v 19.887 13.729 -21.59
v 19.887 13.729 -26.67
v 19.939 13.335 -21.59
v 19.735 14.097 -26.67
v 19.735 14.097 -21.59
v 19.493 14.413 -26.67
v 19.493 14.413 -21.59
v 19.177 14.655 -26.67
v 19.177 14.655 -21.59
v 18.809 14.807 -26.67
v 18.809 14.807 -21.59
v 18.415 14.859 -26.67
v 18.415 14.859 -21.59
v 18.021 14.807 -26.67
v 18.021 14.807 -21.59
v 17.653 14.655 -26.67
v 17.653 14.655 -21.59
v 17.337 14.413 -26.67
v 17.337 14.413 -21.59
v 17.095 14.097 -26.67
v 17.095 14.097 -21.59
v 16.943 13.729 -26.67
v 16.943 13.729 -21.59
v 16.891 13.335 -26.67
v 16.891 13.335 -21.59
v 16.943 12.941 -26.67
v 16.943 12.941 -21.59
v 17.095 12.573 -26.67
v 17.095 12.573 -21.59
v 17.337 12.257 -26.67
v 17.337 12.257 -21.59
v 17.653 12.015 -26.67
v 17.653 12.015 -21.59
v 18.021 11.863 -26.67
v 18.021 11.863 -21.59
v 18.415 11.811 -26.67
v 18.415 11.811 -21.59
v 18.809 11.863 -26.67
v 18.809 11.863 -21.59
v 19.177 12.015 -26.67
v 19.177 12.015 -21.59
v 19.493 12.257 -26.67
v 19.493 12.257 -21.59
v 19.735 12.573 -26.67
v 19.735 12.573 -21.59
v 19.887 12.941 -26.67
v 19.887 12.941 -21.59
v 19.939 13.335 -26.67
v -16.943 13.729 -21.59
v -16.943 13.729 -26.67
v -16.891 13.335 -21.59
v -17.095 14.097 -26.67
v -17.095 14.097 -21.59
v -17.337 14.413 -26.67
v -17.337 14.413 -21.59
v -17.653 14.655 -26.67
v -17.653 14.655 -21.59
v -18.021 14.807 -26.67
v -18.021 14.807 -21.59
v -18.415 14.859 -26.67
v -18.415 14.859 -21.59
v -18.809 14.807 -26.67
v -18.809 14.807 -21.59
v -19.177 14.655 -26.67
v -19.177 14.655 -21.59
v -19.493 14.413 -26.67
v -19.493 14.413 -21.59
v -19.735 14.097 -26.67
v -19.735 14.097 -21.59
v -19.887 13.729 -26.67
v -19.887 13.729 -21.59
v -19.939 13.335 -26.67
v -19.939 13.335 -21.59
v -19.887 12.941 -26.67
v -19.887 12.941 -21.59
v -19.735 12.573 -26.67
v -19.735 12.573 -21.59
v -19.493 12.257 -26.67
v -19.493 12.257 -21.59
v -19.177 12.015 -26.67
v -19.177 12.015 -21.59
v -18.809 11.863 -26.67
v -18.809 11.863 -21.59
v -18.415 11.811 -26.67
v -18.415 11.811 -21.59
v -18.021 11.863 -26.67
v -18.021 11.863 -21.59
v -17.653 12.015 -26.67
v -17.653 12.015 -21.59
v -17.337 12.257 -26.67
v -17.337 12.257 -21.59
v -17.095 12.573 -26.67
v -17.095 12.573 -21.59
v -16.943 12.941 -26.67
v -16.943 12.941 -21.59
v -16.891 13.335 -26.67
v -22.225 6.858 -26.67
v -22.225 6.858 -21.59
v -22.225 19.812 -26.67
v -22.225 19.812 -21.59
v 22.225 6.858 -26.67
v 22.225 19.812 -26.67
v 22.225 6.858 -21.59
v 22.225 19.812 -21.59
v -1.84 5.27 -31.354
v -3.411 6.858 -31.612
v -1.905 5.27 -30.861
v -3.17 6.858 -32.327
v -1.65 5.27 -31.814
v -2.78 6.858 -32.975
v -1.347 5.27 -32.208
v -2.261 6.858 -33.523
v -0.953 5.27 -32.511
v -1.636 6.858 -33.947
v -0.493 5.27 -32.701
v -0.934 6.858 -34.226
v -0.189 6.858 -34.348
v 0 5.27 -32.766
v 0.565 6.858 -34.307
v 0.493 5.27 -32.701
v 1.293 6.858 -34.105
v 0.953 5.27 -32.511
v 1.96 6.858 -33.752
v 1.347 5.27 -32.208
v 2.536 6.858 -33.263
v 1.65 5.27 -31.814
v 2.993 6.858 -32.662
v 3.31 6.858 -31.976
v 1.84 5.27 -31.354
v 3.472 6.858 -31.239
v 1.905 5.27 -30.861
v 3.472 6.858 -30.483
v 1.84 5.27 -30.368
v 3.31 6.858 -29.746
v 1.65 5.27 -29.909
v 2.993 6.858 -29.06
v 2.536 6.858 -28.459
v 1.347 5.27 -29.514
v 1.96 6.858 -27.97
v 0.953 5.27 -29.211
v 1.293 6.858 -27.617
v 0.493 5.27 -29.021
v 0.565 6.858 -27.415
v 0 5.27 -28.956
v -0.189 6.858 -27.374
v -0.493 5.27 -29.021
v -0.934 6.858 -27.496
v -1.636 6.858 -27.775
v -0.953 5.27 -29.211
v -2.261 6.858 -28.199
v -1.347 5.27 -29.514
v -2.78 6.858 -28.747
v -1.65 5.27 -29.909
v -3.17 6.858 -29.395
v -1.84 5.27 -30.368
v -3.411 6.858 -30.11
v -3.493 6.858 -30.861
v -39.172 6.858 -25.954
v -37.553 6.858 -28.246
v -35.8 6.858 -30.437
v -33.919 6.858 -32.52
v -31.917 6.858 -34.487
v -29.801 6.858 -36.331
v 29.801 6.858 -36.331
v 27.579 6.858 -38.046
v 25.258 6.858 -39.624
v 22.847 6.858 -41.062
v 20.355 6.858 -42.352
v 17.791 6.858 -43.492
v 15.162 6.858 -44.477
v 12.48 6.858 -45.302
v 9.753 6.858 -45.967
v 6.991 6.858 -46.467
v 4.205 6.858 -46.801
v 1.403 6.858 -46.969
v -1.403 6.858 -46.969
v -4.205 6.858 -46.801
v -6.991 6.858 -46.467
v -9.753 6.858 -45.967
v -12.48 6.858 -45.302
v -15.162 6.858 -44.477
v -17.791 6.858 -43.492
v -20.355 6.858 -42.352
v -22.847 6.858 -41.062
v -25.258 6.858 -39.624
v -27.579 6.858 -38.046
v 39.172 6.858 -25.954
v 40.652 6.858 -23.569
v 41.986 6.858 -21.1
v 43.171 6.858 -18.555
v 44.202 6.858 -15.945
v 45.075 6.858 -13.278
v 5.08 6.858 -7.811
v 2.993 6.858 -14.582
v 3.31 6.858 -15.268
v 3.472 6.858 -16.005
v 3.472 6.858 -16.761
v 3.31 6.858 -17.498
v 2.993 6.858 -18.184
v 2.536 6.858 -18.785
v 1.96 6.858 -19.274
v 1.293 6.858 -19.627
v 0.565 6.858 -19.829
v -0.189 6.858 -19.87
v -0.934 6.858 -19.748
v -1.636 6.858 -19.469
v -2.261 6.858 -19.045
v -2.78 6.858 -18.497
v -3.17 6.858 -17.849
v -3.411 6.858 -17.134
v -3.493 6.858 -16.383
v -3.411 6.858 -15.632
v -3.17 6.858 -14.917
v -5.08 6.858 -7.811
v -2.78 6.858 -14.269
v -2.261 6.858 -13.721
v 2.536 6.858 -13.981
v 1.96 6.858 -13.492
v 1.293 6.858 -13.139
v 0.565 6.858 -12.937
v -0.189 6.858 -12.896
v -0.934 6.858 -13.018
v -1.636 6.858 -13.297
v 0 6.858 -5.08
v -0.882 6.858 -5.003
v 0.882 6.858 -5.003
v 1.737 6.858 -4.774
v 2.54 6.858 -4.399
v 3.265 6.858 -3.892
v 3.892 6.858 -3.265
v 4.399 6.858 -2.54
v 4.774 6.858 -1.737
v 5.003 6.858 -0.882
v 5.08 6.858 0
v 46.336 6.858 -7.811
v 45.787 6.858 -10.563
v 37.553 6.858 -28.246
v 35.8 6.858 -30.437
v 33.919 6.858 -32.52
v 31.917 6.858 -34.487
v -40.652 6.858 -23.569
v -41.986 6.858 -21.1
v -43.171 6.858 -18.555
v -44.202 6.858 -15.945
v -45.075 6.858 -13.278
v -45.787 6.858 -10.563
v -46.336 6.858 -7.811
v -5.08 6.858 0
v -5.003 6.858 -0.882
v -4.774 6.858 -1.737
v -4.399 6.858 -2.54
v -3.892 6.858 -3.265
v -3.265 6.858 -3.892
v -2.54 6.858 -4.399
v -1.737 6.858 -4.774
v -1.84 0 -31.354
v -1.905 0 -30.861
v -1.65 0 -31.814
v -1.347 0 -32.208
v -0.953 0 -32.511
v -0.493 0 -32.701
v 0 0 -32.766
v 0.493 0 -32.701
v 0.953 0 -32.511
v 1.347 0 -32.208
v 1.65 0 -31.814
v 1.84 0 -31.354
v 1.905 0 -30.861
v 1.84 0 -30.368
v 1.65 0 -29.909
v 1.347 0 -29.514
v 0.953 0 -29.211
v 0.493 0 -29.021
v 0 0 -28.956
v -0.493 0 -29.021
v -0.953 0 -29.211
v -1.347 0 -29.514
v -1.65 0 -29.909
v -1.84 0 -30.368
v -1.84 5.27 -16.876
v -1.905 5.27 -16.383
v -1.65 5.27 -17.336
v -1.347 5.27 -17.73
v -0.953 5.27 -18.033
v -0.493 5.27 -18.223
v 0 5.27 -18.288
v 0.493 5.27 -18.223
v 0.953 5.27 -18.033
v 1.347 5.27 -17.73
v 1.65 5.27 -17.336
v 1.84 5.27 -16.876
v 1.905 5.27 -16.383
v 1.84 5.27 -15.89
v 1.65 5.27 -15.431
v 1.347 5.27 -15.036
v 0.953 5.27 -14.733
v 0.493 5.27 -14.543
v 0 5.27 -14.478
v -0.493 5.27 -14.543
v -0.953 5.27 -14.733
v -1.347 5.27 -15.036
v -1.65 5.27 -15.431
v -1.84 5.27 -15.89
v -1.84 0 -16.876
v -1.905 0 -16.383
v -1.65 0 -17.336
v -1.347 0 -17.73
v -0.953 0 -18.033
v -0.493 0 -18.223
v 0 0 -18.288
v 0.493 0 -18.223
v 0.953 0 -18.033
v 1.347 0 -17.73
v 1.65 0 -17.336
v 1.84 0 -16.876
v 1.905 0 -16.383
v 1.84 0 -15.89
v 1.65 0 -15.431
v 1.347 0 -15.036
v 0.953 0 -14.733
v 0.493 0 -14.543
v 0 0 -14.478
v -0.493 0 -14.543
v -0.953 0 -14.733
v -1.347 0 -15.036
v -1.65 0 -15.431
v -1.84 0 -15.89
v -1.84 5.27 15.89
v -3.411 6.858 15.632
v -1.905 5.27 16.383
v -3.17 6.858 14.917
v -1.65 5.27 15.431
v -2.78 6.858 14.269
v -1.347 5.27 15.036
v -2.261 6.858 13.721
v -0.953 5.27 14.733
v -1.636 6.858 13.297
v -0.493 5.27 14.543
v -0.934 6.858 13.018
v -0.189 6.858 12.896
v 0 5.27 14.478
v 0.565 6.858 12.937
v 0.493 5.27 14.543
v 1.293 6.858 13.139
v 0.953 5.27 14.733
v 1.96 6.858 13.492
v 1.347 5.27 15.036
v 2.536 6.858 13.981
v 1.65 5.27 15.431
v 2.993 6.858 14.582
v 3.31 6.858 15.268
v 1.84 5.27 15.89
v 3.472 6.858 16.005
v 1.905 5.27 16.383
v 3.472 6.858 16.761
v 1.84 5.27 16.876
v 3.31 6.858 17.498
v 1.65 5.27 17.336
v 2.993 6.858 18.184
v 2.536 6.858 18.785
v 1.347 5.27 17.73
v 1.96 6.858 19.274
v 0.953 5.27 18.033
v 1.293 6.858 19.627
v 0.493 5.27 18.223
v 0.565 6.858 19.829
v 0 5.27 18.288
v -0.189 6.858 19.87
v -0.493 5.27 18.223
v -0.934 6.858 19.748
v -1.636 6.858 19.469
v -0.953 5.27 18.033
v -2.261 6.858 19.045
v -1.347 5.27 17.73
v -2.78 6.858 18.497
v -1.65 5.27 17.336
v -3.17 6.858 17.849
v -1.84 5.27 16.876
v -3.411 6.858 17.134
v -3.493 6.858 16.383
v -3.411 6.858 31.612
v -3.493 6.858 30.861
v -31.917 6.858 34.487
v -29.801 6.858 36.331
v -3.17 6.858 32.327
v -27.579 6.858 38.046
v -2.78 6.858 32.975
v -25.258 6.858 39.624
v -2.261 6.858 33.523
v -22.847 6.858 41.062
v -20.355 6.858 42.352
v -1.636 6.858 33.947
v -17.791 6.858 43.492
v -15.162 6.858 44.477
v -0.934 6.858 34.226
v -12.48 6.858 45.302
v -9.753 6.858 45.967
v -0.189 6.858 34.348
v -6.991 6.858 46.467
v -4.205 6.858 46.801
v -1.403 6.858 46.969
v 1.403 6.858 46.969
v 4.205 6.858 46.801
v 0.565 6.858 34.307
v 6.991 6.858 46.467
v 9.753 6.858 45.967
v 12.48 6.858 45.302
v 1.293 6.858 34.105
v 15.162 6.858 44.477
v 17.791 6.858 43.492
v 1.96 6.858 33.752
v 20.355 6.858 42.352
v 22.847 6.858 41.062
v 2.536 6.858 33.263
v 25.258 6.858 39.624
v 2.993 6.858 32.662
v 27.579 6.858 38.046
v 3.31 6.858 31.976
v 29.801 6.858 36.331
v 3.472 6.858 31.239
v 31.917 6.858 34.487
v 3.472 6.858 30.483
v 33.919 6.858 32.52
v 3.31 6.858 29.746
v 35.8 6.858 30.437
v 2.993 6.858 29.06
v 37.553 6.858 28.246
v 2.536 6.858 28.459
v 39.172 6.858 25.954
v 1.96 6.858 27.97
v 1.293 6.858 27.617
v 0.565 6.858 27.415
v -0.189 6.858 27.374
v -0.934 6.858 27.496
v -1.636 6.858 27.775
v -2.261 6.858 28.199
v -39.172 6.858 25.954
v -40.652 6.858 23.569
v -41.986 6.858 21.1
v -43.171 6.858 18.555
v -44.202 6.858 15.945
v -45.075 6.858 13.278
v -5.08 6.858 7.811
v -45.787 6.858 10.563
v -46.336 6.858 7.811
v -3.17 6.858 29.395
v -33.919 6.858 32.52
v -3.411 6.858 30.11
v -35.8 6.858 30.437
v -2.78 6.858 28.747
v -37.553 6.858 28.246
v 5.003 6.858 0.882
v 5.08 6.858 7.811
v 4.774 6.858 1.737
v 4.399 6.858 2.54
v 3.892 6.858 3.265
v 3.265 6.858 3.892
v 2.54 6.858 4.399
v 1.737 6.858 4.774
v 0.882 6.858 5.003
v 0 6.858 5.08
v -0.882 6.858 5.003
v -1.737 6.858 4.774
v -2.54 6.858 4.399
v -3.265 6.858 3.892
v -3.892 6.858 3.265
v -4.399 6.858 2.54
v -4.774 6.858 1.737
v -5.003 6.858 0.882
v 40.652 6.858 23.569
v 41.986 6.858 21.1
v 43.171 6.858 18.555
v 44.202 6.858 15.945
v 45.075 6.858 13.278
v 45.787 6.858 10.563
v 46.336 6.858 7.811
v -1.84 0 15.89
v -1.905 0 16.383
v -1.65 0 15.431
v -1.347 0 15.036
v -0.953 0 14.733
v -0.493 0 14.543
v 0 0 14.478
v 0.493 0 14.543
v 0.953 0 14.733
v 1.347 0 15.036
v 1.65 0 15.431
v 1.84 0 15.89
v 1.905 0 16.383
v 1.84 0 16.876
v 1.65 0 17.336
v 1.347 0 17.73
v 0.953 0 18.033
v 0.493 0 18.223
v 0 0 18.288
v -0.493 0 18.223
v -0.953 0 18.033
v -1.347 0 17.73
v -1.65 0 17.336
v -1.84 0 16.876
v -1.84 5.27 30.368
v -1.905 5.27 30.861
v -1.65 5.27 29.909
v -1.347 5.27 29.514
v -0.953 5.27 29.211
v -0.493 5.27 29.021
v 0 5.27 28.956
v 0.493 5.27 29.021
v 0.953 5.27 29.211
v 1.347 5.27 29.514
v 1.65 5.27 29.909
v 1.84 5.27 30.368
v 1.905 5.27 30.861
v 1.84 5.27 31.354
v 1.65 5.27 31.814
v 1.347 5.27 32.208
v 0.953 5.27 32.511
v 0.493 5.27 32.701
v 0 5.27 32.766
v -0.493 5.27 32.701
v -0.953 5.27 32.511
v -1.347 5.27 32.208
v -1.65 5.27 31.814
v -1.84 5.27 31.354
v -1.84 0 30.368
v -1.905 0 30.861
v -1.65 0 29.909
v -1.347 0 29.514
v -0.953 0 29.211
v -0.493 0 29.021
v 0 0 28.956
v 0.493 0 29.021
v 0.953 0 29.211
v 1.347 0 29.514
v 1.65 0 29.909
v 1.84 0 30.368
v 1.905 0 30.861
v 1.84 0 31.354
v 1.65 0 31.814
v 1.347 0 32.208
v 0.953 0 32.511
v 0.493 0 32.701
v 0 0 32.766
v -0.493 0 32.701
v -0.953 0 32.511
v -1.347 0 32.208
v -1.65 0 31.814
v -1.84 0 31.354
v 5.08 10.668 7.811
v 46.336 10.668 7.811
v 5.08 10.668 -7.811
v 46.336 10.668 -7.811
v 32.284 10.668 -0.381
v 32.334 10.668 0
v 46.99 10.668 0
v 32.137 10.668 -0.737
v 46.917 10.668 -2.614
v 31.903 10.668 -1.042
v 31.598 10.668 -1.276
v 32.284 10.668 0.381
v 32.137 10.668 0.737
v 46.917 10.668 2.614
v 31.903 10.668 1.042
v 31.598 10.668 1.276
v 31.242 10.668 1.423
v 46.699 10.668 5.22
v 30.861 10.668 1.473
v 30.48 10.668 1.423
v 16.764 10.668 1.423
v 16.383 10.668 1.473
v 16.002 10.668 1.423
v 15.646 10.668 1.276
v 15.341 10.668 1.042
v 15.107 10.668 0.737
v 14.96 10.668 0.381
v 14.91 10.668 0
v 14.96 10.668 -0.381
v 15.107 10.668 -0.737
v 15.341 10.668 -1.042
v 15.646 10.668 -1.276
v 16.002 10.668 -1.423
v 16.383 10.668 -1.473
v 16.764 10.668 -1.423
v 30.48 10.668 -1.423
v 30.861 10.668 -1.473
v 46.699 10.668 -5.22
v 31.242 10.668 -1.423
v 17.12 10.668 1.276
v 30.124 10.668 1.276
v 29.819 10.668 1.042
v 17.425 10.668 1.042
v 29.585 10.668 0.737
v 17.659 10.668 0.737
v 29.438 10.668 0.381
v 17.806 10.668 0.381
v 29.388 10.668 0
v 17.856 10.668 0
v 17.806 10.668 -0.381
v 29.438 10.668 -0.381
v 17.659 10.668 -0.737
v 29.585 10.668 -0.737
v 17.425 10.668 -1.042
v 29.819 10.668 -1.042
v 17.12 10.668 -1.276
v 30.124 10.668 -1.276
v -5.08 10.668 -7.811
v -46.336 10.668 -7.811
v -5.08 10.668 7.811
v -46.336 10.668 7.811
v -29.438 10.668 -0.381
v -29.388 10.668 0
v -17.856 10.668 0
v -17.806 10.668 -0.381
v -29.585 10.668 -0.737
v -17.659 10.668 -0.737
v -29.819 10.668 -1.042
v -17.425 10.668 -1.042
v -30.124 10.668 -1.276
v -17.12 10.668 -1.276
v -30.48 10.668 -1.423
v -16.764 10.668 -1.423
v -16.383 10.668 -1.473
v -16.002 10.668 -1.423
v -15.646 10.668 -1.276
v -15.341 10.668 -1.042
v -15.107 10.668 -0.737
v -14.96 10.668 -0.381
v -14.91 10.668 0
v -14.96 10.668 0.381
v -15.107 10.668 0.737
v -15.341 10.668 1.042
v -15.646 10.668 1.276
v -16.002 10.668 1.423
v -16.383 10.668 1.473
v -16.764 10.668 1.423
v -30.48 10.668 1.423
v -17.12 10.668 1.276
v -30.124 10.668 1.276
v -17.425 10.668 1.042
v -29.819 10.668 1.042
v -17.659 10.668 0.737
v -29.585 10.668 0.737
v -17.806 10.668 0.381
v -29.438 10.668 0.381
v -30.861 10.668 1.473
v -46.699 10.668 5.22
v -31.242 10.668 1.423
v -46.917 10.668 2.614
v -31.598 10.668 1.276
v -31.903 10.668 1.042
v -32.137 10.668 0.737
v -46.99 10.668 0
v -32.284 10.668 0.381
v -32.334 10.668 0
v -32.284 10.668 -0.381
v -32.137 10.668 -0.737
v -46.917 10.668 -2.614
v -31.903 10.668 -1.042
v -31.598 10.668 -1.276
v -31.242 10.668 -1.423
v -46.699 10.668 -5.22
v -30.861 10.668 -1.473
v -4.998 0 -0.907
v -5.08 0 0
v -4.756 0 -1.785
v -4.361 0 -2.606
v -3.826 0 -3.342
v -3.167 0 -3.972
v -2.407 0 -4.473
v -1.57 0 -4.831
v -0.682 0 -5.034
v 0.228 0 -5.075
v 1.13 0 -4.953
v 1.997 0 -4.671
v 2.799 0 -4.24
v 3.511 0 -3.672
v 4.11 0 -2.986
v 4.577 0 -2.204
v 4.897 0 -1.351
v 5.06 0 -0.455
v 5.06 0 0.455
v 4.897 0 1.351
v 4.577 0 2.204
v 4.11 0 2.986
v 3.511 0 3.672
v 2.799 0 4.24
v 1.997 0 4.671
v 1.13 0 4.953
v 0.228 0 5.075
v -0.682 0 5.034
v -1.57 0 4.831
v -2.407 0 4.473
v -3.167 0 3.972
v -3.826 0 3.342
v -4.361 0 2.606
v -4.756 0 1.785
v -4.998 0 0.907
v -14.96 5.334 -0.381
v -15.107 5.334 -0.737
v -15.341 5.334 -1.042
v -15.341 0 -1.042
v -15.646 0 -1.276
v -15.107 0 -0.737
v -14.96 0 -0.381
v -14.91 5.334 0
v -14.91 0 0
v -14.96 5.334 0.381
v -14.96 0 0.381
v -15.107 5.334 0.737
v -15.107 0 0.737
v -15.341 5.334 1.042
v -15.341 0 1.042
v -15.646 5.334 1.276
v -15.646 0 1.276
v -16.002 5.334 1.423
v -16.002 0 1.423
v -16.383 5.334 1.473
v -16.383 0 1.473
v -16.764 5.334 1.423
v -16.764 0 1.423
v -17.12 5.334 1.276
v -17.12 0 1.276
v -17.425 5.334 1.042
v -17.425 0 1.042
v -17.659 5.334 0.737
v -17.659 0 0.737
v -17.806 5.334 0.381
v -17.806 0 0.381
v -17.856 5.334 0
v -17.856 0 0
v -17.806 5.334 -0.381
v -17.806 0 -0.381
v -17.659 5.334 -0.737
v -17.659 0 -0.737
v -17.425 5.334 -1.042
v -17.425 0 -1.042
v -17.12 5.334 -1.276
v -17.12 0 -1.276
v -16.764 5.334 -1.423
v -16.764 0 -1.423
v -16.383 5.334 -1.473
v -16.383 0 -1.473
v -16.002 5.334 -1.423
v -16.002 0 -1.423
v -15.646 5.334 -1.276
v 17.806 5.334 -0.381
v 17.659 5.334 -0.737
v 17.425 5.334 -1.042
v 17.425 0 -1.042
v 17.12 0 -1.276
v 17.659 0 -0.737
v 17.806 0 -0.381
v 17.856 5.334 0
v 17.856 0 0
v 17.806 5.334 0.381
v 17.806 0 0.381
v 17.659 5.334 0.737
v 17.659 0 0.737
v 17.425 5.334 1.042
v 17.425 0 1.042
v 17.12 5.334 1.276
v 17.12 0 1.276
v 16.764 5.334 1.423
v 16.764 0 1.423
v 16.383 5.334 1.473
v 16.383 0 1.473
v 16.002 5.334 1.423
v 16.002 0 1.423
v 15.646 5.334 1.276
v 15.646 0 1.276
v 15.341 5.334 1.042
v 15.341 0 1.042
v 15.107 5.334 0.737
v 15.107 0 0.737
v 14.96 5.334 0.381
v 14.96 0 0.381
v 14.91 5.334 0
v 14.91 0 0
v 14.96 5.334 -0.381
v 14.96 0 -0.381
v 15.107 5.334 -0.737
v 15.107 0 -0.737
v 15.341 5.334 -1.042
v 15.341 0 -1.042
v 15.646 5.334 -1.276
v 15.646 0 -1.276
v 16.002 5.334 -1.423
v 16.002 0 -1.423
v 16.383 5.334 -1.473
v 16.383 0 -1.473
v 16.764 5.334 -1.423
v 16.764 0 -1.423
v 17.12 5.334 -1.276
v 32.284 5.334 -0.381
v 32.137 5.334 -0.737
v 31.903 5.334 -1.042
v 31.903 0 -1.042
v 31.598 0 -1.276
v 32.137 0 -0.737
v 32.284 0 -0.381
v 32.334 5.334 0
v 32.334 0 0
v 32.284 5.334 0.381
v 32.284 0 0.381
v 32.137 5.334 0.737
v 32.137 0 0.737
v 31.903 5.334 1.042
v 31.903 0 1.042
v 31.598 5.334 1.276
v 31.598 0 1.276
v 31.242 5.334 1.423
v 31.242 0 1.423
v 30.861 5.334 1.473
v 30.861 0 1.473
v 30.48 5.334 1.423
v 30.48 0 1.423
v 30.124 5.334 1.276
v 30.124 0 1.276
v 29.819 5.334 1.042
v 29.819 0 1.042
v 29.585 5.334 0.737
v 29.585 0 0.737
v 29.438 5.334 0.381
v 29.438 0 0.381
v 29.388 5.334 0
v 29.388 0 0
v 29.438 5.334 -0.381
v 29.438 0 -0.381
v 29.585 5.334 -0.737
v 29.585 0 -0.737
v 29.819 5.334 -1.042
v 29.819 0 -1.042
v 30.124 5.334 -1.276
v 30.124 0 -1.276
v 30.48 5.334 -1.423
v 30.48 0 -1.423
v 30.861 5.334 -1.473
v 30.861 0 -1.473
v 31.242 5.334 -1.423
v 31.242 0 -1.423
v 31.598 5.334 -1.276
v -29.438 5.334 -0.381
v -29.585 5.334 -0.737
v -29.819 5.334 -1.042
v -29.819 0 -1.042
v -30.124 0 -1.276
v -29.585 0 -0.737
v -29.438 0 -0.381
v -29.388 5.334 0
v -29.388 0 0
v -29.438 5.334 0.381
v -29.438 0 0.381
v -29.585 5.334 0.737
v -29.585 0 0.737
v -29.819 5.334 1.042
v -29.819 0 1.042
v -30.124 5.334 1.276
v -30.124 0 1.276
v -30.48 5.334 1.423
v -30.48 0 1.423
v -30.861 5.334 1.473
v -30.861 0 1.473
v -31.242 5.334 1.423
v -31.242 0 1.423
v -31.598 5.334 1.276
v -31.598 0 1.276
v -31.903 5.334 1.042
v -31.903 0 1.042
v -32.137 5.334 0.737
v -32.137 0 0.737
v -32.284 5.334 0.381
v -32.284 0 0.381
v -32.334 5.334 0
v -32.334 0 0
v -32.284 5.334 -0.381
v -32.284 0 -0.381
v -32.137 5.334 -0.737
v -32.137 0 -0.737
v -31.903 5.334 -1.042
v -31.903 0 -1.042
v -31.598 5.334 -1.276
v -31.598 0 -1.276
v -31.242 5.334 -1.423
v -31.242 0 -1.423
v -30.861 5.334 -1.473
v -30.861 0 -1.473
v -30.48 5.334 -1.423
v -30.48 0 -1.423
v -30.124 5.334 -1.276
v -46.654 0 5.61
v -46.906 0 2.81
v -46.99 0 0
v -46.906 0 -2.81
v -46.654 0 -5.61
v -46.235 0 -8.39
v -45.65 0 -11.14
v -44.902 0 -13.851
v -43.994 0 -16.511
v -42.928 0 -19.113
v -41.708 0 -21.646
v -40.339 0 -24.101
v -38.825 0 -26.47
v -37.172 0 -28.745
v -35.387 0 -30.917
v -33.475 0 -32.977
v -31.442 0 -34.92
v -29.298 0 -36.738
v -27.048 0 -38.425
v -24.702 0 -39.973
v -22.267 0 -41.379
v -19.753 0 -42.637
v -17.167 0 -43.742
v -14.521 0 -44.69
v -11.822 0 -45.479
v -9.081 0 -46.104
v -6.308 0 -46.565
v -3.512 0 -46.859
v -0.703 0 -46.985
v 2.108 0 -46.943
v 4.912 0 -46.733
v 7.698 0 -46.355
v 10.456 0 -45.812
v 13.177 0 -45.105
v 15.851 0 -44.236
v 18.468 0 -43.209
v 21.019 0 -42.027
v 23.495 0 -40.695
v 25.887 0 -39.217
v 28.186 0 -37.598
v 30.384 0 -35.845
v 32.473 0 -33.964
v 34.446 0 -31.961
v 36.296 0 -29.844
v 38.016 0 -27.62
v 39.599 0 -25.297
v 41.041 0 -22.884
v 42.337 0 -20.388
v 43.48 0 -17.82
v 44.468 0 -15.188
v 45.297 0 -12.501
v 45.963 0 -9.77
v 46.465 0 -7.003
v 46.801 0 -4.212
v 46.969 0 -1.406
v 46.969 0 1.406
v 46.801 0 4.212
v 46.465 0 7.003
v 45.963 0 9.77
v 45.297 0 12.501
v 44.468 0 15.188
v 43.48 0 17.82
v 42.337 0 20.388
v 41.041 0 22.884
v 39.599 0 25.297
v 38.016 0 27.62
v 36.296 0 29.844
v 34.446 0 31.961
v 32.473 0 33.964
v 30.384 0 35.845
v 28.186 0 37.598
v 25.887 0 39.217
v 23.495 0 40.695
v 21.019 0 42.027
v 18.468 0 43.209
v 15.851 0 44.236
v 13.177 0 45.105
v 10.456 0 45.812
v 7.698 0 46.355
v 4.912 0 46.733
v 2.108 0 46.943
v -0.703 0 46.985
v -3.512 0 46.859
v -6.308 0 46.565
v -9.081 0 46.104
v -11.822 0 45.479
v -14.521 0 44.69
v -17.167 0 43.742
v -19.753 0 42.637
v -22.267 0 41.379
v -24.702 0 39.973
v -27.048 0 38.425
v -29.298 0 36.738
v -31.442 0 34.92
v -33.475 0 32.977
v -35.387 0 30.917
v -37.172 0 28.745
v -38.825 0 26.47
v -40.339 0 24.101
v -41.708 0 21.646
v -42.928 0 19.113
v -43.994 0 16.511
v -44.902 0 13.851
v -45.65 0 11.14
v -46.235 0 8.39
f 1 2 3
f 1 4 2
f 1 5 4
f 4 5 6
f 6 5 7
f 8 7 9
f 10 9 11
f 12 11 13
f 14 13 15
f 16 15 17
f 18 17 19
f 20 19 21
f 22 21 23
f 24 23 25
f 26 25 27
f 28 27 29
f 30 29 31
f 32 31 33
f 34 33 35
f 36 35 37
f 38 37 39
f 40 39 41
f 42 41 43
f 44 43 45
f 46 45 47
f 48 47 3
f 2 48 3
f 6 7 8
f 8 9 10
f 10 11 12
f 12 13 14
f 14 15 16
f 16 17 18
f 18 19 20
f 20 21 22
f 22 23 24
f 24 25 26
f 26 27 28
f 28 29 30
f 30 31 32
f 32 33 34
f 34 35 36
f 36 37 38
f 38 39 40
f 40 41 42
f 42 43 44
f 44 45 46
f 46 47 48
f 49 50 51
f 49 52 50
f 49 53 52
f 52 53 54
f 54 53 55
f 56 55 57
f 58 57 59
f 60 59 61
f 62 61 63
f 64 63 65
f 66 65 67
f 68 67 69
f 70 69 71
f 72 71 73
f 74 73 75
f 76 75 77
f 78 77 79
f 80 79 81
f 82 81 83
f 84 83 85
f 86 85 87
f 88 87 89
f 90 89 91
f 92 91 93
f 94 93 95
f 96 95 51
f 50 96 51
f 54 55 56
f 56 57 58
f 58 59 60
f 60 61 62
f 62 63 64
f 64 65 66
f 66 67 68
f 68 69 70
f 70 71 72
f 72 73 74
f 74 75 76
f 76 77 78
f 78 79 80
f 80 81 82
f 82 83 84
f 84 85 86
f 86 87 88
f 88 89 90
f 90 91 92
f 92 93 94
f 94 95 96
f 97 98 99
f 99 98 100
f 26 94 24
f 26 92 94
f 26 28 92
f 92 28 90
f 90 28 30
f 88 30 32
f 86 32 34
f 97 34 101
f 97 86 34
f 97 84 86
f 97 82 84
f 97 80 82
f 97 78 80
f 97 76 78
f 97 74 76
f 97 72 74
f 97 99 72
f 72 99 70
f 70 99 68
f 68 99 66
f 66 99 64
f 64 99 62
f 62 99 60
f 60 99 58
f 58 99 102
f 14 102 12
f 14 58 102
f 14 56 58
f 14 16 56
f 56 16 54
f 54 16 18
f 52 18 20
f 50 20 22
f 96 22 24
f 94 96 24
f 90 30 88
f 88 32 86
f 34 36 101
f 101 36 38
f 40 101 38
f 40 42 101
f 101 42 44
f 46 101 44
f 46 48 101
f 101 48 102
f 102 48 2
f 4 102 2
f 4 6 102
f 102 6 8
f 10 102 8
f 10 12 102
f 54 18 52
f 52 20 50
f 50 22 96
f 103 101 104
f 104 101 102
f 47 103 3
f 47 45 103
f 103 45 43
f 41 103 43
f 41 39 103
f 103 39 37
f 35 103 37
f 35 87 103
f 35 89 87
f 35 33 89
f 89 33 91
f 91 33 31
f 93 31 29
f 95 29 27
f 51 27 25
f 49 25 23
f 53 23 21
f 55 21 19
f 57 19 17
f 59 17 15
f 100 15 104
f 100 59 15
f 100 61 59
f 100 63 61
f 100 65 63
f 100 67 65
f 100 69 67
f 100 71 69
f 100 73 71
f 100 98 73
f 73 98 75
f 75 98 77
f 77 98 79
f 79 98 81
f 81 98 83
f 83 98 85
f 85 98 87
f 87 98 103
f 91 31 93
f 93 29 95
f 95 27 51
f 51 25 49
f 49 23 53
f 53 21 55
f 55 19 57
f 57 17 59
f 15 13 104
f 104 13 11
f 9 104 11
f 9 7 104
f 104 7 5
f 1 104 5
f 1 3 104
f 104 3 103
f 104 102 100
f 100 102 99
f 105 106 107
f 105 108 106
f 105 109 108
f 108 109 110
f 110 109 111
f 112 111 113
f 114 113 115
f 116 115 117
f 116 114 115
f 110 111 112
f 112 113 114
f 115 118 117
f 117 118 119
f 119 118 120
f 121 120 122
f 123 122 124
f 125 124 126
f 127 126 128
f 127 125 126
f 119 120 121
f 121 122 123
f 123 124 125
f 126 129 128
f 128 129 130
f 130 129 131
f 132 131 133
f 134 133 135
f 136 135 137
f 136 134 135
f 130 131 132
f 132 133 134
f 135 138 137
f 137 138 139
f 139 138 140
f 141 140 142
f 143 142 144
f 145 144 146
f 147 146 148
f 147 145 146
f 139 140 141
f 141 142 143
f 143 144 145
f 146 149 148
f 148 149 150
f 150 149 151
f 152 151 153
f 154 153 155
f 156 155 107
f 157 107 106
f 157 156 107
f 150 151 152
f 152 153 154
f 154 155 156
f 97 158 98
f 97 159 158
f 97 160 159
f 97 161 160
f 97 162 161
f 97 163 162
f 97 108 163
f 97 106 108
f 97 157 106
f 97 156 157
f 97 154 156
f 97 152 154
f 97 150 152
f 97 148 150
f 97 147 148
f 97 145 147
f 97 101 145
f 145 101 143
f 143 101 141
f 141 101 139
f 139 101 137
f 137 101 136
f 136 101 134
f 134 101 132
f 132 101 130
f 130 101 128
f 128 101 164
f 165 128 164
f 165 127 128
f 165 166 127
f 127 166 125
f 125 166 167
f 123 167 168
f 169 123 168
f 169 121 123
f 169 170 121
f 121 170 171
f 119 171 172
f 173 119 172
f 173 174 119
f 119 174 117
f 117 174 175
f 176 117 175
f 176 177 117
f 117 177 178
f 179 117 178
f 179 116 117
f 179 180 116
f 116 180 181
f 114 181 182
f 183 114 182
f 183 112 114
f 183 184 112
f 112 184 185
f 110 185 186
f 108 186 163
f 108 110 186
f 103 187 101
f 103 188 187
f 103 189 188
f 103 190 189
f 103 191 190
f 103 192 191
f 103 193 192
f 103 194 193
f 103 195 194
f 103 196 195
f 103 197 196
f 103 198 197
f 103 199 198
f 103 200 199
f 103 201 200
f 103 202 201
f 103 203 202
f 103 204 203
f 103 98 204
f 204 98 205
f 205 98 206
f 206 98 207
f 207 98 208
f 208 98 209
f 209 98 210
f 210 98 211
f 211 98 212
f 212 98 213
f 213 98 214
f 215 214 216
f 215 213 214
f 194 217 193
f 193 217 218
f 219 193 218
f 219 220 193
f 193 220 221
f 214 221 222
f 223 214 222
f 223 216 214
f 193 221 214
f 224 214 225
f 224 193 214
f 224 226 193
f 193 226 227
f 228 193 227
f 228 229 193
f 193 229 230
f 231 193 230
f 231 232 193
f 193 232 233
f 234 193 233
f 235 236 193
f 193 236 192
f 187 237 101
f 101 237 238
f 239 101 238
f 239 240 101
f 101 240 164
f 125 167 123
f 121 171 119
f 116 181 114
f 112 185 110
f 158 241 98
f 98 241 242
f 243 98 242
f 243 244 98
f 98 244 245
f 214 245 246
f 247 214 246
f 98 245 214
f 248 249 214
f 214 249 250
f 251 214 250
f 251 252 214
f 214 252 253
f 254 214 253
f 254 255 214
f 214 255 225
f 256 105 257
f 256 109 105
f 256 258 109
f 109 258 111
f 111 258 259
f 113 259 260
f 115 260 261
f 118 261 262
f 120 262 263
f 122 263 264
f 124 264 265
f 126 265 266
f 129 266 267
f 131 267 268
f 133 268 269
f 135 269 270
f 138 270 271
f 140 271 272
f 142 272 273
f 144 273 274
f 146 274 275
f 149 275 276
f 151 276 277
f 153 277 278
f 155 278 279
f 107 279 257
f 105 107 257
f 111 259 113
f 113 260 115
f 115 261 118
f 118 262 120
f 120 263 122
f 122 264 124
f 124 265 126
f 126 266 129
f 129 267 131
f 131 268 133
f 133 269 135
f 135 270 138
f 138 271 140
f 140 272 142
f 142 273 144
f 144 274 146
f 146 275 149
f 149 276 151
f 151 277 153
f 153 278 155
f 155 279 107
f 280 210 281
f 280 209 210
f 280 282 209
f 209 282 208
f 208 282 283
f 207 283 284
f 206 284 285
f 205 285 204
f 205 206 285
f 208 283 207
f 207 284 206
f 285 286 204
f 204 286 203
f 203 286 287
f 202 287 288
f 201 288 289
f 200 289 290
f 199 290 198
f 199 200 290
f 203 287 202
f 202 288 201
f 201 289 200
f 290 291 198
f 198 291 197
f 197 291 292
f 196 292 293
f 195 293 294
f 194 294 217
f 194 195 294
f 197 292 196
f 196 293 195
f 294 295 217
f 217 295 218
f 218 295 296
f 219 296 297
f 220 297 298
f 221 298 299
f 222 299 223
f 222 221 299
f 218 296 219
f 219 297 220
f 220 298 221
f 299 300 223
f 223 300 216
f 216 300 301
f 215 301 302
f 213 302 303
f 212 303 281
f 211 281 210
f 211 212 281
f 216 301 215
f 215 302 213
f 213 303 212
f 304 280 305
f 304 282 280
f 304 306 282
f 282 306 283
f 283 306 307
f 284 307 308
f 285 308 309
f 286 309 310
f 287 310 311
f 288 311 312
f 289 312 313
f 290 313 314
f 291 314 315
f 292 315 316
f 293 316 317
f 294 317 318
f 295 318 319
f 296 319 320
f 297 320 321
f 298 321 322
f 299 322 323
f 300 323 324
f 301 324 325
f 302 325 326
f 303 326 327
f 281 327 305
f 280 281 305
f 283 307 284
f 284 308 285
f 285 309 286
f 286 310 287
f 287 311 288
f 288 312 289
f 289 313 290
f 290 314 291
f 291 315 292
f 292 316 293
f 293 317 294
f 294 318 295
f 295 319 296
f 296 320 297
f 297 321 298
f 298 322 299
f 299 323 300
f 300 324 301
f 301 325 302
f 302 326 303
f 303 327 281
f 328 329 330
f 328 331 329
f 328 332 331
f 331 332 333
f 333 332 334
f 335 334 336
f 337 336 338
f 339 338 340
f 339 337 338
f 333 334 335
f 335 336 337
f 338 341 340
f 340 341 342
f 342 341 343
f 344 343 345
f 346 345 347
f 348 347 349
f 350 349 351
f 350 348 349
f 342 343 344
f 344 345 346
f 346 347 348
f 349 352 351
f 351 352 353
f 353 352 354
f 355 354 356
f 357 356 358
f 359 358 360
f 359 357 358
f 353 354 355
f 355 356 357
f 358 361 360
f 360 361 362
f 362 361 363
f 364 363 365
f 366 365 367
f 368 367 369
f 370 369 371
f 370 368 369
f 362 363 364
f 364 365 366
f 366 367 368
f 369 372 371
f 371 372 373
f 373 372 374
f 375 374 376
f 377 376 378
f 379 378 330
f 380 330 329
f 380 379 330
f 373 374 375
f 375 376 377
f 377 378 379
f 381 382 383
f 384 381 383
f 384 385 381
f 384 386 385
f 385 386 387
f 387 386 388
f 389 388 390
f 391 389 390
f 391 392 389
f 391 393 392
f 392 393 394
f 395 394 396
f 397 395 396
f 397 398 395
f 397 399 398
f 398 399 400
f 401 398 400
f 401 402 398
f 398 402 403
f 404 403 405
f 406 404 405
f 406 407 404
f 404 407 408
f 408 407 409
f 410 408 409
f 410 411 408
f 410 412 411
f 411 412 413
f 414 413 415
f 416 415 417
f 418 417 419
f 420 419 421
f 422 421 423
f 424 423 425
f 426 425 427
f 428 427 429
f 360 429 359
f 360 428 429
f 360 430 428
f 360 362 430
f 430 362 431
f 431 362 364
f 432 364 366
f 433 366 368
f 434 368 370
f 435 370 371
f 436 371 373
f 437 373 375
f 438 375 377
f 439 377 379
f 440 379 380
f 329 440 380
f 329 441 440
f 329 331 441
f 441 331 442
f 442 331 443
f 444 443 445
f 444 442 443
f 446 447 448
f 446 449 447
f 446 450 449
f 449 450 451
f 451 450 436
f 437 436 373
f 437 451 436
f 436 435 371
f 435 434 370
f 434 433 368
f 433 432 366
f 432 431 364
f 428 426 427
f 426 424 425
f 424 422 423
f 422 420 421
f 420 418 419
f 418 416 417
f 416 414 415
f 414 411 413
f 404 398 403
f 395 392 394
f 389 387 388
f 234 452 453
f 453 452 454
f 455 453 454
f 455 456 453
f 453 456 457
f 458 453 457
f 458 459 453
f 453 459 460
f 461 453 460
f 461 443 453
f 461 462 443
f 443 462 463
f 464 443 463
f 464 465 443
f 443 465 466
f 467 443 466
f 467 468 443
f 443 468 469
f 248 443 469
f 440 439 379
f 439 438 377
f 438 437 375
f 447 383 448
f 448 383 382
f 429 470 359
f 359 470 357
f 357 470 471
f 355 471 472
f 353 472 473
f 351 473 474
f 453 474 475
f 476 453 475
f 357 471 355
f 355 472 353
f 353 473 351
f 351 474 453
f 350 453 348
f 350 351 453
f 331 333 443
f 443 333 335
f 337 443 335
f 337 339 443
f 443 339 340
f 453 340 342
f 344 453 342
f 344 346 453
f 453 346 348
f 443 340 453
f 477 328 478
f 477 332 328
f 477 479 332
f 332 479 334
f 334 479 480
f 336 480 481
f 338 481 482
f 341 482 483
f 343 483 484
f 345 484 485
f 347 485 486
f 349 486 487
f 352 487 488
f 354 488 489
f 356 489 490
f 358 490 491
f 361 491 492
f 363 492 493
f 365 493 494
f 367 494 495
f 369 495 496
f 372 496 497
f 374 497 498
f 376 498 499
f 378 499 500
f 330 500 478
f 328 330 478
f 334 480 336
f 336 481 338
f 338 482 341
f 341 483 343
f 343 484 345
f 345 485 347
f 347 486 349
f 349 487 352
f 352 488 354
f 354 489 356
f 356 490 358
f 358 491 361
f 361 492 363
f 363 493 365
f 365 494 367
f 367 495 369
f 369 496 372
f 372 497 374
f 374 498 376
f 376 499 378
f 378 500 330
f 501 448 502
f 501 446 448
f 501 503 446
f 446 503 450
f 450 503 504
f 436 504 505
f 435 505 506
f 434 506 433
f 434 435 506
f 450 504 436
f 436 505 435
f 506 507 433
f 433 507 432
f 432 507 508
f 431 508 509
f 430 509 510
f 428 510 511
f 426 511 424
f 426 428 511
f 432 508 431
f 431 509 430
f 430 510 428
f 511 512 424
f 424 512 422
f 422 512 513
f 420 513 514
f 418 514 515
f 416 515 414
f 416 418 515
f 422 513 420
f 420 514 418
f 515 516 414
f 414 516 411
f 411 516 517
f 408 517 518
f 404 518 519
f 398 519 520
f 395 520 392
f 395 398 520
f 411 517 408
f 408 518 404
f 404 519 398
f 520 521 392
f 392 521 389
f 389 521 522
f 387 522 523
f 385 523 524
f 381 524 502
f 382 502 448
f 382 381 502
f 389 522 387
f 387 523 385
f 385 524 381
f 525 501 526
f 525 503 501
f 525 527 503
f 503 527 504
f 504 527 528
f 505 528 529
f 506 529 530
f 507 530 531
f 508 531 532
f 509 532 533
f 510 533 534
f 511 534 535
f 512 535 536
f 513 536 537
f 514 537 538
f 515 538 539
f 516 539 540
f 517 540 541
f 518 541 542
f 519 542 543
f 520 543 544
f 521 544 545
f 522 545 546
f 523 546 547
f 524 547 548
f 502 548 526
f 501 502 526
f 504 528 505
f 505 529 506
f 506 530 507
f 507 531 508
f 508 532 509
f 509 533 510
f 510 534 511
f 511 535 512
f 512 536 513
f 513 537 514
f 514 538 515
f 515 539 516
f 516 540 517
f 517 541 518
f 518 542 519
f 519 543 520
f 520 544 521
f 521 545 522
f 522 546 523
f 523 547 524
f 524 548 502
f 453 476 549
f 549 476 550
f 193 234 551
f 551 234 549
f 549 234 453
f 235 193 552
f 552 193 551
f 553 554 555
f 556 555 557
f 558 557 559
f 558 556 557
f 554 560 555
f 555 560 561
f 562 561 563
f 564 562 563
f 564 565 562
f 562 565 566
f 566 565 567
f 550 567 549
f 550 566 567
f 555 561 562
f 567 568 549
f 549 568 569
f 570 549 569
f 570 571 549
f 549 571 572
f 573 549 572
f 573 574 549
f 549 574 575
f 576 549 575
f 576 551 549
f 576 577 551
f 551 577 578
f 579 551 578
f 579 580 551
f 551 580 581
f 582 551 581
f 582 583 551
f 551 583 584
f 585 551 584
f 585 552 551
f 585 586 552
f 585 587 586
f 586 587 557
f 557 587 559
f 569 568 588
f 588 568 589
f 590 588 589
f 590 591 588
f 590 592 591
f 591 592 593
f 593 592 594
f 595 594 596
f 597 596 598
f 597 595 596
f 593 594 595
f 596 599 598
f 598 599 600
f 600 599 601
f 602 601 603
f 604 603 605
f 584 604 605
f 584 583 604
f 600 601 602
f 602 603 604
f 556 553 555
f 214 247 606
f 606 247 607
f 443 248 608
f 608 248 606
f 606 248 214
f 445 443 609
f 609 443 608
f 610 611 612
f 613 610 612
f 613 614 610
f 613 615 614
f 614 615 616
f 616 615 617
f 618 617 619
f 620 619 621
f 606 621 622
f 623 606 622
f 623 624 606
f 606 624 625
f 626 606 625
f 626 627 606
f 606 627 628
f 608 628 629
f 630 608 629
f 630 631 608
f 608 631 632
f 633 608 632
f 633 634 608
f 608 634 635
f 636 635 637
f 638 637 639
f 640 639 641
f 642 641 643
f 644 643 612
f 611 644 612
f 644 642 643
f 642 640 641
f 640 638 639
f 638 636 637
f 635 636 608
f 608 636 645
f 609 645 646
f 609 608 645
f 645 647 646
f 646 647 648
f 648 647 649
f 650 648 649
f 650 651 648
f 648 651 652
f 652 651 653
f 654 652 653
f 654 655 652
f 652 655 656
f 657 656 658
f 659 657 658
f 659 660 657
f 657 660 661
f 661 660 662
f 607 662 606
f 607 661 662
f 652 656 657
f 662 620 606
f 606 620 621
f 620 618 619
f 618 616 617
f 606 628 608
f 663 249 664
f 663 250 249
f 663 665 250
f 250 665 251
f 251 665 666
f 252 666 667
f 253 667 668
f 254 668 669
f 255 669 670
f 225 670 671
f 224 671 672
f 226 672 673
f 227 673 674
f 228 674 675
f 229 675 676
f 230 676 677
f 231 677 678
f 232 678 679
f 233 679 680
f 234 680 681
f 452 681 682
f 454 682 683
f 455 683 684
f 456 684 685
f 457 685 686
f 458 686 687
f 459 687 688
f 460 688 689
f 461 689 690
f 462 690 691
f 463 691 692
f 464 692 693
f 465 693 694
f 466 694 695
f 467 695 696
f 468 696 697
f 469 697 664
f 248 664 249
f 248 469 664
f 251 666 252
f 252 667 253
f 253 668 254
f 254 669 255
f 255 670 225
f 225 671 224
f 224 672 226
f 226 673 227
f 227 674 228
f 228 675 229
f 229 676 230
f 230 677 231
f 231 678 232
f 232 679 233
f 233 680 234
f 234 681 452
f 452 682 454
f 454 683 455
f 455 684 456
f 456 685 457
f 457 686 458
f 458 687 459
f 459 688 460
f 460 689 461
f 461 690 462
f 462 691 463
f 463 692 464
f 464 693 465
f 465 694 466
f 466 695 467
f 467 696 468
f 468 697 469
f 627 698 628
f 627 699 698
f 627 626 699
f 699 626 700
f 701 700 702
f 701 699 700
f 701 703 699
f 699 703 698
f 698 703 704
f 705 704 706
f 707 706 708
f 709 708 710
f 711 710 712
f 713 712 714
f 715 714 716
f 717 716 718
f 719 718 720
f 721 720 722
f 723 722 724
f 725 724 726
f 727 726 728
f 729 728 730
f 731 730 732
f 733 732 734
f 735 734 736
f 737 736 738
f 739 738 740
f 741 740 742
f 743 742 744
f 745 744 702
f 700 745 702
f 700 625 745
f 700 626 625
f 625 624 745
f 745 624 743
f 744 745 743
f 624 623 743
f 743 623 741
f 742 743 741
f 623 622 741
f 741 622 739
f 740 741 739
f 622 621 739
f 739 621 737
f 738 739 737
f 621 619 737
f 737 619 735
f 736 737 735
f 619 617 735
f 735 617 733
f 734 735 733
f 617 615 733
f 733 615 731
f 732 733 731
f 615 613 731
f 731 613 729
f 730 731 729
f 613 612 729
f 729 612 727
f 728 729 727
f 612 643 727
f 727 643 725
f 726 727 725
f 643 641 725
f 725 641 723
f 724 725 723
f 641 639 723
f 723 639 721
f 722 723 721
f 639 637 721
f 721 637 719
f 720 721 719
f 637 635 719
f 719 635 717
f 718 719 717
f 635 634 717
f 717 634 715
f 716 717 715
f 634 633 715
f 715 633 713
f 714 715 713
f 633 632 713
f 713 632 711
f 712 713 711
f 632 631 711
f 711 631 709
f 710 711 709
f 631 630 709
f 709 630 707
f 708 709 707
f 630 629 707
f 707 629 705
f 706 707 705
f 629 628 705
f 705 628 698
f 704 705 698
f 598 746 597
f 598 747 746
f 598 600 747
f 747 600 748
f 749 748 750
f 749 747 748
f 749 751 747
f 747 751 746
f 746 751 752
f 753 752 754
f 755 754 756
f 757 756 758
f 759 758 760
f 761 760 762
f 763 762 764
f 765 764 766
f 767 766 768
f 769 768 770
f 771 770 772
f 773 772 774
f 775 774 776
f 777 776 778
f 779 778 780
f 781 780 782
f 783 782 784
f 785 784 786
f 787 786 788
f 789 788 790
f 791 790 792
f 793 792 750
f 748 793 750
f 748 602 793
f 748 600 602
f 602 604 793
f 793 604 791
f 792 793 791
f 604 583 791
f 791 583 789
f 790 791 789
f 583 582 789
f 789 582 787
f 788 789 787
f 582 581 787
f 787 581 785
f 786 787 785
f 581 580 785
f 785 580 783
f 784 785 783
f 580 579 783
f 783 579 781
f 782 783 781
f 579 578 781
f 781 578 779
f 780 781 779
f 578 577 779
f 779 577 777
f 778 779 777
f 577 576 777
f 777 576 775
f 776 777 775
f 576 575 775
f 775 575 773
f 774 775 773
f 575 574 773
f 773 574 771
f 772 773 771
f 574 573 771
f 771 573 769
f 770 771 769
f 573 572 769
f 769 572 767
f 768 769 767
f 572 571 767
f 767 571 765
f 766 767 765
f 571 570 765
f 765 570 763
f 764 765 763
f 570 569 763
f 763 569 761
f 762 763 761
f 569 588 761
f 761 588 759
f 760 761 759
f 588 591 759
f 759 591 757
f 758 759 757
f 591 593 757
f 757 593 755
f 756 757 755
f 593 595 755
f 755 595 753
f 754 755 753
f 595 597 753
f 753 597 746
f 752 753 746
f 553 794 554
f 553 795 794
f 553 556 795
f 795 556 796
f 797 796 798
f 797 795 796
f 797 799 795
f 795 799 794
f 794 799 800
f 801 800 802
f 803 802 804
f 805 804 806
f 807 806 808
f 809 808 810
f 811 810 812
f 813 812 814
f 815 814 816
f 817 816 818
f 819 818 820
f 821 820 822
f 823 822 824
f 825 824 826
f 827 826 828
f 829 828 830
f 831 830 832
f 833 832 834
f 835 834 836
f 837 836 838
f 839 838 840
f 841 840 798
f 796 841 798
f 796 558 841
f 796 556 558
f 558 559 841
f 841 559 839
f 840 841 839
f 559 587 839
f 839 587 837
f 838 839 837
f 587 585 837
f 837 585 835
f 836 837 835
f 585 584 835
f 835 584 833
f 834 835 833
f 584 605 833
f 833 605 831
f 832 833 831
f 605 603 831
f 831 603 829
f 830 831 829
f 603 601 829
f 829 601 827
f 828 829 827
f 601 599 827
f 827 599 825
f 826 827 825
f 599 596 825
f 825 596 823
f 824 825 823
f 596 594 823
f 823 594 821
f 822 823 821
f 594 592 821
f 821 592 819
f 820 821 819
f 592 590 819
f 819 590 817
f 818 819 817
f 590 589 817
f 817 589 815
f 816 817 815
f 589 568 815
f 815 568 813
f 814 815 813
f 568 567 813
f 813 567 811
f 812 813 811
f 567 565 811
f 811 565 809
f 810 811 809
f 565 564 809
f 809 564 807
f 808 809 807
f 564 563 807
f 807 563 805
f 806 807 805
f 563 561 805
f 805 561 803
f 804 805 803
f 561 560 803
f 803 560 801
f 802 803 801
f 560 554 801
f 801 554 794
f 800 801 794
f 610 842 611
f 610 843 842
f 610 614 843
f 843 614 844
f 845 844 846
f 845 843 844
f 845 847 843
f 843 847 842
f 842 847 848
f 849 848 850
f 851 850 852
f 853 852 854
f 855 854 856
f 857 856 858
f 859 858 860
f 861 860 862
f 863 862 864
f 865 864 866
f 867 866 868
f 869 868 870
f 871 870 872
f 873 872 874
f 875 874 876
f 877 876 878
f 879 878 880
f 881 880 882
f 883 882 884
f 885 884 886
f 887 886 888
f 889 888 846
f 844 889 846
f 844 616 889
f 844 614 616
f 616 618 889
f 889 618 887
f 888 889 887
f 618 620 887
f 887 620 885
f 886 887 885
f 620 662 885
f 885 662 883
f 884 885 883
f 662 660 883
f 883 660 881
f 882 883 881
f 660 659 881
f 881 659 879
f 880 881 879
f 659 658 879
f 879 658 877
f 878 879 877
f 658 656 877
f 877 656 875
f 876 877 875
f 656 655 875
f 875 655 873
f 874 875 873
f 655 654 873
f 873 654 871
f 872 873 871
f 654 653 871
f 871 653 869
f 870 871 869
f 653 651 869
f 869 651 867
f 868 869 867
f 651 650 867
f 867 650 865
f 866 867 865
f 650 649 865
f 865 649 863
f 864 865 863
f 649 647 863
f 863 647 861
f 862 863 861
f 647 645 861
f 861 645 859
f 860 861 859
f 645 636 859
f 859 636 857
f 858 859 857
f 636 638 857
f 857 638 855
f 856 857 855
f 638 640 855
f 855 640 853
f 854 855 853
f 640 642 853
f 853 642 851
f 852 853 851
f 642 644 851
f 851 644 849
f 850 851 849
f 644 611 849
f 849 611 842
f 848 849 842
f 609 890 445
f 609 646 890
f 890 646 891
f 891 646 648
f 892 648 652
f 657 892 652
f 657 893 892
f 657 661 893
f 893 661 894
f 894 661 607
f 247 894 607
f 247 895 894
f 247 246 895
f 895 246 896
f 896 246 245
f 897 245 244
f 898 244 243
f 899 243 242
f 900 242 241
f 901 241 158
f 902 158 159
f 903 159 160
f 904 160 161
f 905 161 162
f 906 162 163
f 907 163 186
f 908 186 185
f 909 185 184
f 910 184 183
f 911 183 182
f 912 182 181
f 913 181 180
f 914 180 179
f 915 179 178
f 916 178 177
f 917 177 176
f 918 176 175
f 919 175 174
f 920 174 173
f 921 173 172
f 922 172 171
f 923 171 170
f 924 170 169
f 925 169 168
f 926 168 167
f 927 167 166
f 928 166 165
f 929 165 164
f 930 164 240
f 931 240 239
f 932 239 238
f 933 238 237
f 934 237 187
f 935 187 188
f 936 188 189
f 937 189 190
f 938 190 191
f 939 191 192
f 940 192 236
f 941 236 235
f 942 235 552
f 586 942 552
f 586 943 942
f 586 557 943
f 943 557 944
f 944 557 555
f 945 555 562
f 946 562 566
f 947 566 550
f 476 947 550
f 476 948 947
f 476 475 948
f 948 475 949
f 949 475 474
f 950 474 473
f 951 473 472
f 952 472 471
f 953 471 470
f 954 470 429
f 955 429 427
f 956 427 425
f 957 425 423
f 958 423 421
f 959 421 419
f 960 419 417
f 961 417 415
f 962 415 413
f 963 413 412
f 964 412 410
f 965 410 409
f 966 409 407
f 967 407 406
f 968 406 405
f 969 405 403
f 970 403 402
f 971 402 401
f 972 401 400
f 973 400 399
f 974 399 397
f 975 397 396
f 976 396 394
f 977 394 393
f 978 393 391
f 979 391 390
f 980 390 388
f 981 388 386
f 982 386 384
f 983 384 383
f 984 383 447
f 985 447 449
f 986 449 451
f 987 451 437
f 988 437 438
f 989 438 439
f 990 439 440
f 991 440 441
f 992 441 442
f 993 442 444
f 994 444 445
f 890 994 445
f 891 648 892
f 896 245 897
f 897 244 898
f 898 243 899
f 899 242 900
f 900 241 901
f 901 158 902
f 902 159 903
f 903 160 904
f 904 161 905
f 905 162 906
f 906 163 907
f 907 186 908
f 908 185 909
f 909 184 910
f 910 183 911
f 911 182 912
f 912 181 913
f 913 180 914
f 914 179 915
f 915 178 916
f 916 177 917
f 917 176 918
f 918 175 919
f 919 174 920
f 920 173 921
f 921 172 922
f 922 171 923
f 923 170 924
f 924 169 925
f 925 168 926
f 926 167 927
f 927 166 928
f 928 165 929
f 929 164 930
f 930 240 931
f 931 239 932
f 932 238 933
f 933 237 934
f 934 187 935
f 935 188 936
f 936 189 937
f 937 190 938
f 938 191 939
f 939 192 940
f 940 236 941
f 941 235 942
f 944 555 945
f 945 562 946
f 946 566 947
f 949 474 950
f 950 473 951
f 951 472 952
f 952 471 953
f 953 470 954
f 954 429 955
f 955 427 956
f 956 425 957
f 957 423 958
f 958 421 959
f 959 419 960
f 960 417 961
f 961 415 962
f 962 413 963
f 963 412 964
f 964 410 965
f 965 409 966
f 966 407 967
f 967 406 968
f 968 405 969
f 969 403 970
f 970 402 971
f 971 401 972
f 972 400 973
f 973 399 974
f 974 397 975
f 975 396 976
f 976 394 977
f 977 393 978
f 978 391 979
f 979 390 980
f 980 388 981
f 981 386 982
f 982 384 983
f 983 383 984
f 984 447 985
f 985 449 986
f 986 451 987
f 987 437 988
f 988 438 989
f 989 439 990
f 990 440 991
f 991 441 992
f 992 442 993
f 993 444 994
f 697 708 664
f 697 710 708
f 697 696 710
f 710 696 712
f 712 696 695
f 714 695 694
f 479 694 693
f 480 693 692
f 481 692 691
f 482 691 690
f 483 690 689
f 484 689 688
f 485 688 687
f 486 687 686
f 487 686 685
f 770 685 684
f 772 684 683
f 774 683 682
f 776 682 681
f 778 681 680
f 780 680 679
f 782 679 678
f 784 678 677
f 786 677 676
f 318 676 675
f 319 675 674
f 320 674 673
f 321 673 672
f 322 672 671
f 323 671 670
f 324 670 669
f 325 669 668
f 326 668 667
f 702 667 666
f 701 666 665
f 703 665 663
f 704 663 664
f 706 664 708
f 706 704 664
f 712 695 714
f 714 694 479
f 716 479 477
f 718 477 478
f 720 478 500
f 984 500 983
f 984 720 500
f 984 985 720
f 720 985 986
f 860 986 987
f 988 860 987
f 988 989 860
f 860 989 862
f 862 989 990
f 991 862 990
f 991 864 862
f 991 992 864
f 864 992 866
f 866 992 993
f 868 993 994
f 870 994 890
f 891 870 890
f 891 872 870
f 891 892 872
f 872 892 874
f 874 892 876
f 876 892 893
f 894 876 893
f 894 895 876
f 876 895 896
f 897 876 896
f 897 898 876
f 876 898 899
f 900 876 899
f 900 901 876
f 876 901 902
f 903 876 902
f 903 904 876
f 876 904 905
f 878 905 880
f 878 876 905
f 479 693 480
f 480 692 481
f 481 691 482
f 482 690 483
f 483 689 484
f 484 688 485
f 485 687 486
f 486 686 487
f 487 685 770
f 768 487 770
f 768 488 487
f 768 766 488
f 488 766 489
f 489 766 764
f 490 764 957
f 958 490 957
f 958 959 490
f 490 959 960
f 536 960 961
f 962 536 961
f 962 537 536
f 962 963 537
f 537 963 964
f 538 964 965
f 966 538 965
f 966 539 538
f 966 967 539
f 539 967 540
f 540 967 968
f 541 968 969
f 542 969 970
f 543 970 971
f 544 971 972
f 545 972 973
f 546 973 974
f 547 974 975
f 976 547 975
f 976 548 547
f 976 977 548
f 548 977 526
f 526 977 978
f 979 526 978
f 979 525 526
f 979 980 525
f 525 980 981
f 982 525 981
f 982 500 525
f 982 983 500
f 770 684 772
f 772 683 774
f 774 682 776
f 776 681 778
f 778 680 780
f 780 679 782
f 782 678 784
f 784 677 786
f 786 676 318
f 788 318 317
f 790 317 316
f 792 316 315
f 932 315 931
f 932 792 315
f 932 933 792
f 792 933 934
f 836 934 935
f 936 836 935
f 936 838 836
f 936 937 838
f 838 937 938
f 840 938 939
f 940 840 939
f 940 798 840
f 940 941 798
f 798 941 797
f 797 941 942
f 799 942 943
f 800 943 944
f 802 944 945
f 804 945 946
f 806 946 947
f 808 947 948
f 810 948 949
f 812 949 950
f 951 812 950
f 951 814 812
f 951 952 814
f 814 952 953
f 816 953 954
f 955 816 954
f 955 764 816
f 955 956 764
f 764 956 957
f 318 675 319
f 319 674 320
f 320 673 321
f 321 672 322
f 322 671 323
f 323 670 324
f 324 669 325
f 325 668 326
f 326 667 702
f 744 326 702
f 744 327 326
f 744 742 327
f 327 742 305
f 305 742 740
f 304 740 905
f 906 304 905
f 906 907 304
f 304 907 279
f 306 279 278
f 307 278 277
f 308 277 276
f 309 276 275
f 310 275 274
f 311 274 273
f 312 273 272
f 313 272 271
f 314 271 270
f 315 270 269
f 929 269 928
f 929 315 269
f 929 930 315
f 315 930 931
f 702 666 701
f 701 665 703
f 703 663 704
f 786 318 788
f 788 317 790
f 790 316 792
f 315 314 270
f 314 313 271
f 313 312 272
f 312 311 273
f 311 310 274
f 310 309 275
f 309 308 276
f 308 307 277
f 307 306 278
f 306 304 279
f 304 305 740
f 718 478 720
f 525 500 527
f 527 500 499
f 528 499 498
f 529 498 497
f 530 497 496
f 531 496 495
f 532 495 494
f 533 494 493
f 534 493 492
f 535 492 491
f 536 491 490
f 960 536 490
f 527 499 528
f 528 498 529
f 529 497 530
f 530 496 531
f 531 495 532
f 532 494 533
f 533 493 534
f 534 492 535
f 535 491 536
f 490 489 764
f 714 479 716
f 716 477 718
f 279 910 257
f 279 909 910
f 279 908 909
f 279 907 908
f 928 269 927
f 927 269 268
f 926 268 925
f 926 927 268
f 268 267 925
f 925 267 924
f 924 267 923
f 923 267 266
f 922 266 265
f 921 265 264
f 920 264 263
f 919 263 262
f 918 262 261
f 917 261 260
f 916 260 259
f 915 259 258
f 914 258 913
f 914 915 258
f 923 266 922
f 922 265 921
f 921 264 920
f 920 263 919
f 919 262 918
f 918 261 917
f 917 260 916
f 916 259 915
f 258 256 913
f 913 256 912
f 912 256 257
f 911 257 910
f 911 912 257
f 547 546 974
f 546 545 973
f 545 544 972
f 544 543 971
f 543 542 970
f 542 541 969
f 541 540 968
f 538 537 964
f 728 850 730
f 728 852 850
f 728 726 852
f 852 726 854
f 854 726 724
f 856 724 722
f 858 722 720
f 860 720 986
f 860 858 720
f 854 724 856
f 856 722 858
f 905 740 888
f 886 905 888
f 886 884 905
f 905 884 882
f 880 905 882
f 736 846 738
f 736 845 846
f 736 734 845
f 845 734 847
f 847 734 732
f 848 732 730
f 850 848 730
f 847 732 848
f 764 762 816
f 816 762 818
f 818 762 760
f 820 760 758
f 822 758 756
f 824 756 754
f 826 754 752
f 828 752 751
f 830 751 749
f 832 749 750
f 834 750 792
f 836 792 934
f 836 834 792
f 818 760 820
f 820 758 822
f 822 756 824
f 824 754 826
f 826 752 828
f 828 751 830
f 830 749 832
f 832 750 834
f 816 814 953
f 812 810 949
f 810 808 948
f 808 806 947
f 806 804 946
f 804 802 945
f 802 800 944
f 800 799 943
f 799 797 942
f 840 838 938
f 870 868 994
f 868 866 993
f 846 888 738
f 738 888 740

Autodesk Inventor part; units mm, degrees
ref_plane "YZ Plane" through (0, 0, 0) normal (1, 0, 0) x (0, 1, 0)
ref_plane "XZ Plane" through (0, 0, 0) normal (0, 1, 0) x (-1, 0, 0)
ref_plane "XY Plane" through (0, 0, 0) normal (0, 0, 1) x (1, 0, 0)
sketch "Sketch1" plane through (0, 0, 0) normal (0, 1, 0) x (-1, 0, 0)
  circle A0 centre (0, 0) radius 46.99
  line L0 (0, 0) -> (16.383, 0)
  line L1 (16.383, 0) -> (30.861, 0)
  line L2 (0, 0) -> (0, -16.383)
  line L3 (0, -16.383) -> (0, -30.861)
  line L4 (0, 0) -> (0, 16.383)
  line L5 (0, 16.383) -> (0, 30.861)
  line L6 (0, 0) -> (-16.383, 0)
  line L7 (-16.383, 0) -> (-30.861, 0)
  circle A1 centre (0, 30.861) radius 1.905
  circle A2 centre (30.861, 0) radius 1.4732
  circle A3 centre (0, -30.861) radius 1.905
  circle A4 centre (-30.861, 0) radius 1.4732
  circle A5 centre (-16.383, 0) radius 1.4732
  circle A6 centre (0, 16.383) radius 1.905
  circle A7 centre (16.383, 0) radius 1.4732
  circle A8 centre (0, -16.383) radius 1.905
  dimension "d0" = 93.98
  dimension "d1" = 16.383
  dimension "d2" = 14.478
  dimension "d3" = 16.383
  dimension "d4" = 14.478
  dimension "d5" = 16.383
  dimension "d6" = 14.478
  dimension "d7" = 16.383
  dimension "d8" = 14.478
  dimension "d9" = 3.81
  dimension "d10" = 2.9464
  dimension "d11" = 3.81
  dimension "d12" = 2.9464
  dimension "d13" = 2.9464
  dimension "d14" = 3.81
  dimension "d15" = 2.9464
  dimension "d16" = 3.81
extrude "Extrusion1" add sketch "Sketch1" along normal blind 6.858
sketch "Sketch2" plane through (0, 6.858, 0) normal (0, 1, 0) x (1, 0, 0)
  circle A0 centre (0, 0) radius 46.99 projected
hole "Hole1" at (0, 6.858, 0) direction (0, -1, 0) diameter 10.16 depth 25.4 tip angle 118
sketch "Sketch3" plane through (0, 6.858, 0) normal (0, 1, 0) x (1, 0, 0)
  circle A0 centre (-16.383, 0) radius 1.4732 projected
  circle A1 centre (16.383, 0) radius 1.4732 projected
  circle A2 centre (30.861, 0) radius 1.4732 projected
  circle A3 centre (-30.861, 0) radius 1.4732 projected
  circle A4 centre (0, 0) radius 46.99 projected
  line L0 (0, 0) -> (0, 7.8105)
  line L1 (0, 0) -> (0, -7.8105)
  line L2 (0, -7.8105) -> (46.3363, -7.8105)
  line L3 (0, 7.8105) -> (46.3363, 7.8105)
  line L4 (0, 7.8105) -> (-46.3363, 7.8105)
  line L5 (0, -7.8105) -> (-46.3363, -7.8105)
  line L6 (-5.08, -7.8105) -> (-5.08, 7.8105)
  line L7 (5.08, -7.8105) -> (5.08, 7.8105)
  dimension "d26" = 7.8105
  dimension "d27" = 7.8105
extrude "Extrusion2" add sketch "Sketch3" along normal blind 3.81 contours A4 L2 L7 L3 | L4 L6 L5 A4
chamfer "Chamfer1" distance 1.5875 angle 45 1 edges at (1.905, 6.858, 30.861)
chamfer "Chamfer2" distance 1.5875 angle 45 3 edges at (1.905, 6.858, 16.383) (1.905, 6.858, -16.383) (1.905, 6.858, -30.861)
sketch "Sketch4" plane through (0, 6.858, 0) normal (0, 1, 0) x (1, 0, 0)
  line L0 (0, 21.59) -> (22.225, 21.59)
  line L1 (0, 21.59) -> (-22.225, 21.59)
  line L2 (-22.225, 21.59) -> (-22.225, 26.67)
  line L3 (-22.225, 26.67) -> (22.225, 26.67)
  line L4 (22.225, 26.67) -> (22.225, 21.59)
  dimension "d37" = 22.225
  dimension "d38" = 22.225
  dimension "d39" = 5.08
extrude "Extrusion3" add sketch "Sketch4" along normal blind 12.954
sketch "Sketch5" plane through (22.225, 6.858, -26.67) normal (0, 0, -1) x (-1, 0, 0)
  line L0 (44.45, 0) -> (44.45, 12.954) projected
  line L1 (0, 0) -> (0, 12.954) projected
  line L2 (0, 6.477) -> (44.45, 6.477)
  line L3 (44.45, 6.477) -> (40.64, 6.477)
  line L4 (0, 6.477) -> (3.81, 6.477)
  circle A0 centre (3.81, 6.477) radius 1.524
  circle A1 centre (40.64, 6.477) radius 1.524
  point P0 (22.225, -6.858)
  dimension "d42" = 3.81
  dimension "d43" = 3.81
  dimension "d44" = 3.048
  dimension "d45" = 3.048
hole "Hole2" at (18.415, 13.335, -26.67) at (-18.415, 13.335, -26.67) direction (0, 0, 1) diameter 3.048 depth 25.4 tip angle 118
properties part number "Master Tablet and IR Mount"
